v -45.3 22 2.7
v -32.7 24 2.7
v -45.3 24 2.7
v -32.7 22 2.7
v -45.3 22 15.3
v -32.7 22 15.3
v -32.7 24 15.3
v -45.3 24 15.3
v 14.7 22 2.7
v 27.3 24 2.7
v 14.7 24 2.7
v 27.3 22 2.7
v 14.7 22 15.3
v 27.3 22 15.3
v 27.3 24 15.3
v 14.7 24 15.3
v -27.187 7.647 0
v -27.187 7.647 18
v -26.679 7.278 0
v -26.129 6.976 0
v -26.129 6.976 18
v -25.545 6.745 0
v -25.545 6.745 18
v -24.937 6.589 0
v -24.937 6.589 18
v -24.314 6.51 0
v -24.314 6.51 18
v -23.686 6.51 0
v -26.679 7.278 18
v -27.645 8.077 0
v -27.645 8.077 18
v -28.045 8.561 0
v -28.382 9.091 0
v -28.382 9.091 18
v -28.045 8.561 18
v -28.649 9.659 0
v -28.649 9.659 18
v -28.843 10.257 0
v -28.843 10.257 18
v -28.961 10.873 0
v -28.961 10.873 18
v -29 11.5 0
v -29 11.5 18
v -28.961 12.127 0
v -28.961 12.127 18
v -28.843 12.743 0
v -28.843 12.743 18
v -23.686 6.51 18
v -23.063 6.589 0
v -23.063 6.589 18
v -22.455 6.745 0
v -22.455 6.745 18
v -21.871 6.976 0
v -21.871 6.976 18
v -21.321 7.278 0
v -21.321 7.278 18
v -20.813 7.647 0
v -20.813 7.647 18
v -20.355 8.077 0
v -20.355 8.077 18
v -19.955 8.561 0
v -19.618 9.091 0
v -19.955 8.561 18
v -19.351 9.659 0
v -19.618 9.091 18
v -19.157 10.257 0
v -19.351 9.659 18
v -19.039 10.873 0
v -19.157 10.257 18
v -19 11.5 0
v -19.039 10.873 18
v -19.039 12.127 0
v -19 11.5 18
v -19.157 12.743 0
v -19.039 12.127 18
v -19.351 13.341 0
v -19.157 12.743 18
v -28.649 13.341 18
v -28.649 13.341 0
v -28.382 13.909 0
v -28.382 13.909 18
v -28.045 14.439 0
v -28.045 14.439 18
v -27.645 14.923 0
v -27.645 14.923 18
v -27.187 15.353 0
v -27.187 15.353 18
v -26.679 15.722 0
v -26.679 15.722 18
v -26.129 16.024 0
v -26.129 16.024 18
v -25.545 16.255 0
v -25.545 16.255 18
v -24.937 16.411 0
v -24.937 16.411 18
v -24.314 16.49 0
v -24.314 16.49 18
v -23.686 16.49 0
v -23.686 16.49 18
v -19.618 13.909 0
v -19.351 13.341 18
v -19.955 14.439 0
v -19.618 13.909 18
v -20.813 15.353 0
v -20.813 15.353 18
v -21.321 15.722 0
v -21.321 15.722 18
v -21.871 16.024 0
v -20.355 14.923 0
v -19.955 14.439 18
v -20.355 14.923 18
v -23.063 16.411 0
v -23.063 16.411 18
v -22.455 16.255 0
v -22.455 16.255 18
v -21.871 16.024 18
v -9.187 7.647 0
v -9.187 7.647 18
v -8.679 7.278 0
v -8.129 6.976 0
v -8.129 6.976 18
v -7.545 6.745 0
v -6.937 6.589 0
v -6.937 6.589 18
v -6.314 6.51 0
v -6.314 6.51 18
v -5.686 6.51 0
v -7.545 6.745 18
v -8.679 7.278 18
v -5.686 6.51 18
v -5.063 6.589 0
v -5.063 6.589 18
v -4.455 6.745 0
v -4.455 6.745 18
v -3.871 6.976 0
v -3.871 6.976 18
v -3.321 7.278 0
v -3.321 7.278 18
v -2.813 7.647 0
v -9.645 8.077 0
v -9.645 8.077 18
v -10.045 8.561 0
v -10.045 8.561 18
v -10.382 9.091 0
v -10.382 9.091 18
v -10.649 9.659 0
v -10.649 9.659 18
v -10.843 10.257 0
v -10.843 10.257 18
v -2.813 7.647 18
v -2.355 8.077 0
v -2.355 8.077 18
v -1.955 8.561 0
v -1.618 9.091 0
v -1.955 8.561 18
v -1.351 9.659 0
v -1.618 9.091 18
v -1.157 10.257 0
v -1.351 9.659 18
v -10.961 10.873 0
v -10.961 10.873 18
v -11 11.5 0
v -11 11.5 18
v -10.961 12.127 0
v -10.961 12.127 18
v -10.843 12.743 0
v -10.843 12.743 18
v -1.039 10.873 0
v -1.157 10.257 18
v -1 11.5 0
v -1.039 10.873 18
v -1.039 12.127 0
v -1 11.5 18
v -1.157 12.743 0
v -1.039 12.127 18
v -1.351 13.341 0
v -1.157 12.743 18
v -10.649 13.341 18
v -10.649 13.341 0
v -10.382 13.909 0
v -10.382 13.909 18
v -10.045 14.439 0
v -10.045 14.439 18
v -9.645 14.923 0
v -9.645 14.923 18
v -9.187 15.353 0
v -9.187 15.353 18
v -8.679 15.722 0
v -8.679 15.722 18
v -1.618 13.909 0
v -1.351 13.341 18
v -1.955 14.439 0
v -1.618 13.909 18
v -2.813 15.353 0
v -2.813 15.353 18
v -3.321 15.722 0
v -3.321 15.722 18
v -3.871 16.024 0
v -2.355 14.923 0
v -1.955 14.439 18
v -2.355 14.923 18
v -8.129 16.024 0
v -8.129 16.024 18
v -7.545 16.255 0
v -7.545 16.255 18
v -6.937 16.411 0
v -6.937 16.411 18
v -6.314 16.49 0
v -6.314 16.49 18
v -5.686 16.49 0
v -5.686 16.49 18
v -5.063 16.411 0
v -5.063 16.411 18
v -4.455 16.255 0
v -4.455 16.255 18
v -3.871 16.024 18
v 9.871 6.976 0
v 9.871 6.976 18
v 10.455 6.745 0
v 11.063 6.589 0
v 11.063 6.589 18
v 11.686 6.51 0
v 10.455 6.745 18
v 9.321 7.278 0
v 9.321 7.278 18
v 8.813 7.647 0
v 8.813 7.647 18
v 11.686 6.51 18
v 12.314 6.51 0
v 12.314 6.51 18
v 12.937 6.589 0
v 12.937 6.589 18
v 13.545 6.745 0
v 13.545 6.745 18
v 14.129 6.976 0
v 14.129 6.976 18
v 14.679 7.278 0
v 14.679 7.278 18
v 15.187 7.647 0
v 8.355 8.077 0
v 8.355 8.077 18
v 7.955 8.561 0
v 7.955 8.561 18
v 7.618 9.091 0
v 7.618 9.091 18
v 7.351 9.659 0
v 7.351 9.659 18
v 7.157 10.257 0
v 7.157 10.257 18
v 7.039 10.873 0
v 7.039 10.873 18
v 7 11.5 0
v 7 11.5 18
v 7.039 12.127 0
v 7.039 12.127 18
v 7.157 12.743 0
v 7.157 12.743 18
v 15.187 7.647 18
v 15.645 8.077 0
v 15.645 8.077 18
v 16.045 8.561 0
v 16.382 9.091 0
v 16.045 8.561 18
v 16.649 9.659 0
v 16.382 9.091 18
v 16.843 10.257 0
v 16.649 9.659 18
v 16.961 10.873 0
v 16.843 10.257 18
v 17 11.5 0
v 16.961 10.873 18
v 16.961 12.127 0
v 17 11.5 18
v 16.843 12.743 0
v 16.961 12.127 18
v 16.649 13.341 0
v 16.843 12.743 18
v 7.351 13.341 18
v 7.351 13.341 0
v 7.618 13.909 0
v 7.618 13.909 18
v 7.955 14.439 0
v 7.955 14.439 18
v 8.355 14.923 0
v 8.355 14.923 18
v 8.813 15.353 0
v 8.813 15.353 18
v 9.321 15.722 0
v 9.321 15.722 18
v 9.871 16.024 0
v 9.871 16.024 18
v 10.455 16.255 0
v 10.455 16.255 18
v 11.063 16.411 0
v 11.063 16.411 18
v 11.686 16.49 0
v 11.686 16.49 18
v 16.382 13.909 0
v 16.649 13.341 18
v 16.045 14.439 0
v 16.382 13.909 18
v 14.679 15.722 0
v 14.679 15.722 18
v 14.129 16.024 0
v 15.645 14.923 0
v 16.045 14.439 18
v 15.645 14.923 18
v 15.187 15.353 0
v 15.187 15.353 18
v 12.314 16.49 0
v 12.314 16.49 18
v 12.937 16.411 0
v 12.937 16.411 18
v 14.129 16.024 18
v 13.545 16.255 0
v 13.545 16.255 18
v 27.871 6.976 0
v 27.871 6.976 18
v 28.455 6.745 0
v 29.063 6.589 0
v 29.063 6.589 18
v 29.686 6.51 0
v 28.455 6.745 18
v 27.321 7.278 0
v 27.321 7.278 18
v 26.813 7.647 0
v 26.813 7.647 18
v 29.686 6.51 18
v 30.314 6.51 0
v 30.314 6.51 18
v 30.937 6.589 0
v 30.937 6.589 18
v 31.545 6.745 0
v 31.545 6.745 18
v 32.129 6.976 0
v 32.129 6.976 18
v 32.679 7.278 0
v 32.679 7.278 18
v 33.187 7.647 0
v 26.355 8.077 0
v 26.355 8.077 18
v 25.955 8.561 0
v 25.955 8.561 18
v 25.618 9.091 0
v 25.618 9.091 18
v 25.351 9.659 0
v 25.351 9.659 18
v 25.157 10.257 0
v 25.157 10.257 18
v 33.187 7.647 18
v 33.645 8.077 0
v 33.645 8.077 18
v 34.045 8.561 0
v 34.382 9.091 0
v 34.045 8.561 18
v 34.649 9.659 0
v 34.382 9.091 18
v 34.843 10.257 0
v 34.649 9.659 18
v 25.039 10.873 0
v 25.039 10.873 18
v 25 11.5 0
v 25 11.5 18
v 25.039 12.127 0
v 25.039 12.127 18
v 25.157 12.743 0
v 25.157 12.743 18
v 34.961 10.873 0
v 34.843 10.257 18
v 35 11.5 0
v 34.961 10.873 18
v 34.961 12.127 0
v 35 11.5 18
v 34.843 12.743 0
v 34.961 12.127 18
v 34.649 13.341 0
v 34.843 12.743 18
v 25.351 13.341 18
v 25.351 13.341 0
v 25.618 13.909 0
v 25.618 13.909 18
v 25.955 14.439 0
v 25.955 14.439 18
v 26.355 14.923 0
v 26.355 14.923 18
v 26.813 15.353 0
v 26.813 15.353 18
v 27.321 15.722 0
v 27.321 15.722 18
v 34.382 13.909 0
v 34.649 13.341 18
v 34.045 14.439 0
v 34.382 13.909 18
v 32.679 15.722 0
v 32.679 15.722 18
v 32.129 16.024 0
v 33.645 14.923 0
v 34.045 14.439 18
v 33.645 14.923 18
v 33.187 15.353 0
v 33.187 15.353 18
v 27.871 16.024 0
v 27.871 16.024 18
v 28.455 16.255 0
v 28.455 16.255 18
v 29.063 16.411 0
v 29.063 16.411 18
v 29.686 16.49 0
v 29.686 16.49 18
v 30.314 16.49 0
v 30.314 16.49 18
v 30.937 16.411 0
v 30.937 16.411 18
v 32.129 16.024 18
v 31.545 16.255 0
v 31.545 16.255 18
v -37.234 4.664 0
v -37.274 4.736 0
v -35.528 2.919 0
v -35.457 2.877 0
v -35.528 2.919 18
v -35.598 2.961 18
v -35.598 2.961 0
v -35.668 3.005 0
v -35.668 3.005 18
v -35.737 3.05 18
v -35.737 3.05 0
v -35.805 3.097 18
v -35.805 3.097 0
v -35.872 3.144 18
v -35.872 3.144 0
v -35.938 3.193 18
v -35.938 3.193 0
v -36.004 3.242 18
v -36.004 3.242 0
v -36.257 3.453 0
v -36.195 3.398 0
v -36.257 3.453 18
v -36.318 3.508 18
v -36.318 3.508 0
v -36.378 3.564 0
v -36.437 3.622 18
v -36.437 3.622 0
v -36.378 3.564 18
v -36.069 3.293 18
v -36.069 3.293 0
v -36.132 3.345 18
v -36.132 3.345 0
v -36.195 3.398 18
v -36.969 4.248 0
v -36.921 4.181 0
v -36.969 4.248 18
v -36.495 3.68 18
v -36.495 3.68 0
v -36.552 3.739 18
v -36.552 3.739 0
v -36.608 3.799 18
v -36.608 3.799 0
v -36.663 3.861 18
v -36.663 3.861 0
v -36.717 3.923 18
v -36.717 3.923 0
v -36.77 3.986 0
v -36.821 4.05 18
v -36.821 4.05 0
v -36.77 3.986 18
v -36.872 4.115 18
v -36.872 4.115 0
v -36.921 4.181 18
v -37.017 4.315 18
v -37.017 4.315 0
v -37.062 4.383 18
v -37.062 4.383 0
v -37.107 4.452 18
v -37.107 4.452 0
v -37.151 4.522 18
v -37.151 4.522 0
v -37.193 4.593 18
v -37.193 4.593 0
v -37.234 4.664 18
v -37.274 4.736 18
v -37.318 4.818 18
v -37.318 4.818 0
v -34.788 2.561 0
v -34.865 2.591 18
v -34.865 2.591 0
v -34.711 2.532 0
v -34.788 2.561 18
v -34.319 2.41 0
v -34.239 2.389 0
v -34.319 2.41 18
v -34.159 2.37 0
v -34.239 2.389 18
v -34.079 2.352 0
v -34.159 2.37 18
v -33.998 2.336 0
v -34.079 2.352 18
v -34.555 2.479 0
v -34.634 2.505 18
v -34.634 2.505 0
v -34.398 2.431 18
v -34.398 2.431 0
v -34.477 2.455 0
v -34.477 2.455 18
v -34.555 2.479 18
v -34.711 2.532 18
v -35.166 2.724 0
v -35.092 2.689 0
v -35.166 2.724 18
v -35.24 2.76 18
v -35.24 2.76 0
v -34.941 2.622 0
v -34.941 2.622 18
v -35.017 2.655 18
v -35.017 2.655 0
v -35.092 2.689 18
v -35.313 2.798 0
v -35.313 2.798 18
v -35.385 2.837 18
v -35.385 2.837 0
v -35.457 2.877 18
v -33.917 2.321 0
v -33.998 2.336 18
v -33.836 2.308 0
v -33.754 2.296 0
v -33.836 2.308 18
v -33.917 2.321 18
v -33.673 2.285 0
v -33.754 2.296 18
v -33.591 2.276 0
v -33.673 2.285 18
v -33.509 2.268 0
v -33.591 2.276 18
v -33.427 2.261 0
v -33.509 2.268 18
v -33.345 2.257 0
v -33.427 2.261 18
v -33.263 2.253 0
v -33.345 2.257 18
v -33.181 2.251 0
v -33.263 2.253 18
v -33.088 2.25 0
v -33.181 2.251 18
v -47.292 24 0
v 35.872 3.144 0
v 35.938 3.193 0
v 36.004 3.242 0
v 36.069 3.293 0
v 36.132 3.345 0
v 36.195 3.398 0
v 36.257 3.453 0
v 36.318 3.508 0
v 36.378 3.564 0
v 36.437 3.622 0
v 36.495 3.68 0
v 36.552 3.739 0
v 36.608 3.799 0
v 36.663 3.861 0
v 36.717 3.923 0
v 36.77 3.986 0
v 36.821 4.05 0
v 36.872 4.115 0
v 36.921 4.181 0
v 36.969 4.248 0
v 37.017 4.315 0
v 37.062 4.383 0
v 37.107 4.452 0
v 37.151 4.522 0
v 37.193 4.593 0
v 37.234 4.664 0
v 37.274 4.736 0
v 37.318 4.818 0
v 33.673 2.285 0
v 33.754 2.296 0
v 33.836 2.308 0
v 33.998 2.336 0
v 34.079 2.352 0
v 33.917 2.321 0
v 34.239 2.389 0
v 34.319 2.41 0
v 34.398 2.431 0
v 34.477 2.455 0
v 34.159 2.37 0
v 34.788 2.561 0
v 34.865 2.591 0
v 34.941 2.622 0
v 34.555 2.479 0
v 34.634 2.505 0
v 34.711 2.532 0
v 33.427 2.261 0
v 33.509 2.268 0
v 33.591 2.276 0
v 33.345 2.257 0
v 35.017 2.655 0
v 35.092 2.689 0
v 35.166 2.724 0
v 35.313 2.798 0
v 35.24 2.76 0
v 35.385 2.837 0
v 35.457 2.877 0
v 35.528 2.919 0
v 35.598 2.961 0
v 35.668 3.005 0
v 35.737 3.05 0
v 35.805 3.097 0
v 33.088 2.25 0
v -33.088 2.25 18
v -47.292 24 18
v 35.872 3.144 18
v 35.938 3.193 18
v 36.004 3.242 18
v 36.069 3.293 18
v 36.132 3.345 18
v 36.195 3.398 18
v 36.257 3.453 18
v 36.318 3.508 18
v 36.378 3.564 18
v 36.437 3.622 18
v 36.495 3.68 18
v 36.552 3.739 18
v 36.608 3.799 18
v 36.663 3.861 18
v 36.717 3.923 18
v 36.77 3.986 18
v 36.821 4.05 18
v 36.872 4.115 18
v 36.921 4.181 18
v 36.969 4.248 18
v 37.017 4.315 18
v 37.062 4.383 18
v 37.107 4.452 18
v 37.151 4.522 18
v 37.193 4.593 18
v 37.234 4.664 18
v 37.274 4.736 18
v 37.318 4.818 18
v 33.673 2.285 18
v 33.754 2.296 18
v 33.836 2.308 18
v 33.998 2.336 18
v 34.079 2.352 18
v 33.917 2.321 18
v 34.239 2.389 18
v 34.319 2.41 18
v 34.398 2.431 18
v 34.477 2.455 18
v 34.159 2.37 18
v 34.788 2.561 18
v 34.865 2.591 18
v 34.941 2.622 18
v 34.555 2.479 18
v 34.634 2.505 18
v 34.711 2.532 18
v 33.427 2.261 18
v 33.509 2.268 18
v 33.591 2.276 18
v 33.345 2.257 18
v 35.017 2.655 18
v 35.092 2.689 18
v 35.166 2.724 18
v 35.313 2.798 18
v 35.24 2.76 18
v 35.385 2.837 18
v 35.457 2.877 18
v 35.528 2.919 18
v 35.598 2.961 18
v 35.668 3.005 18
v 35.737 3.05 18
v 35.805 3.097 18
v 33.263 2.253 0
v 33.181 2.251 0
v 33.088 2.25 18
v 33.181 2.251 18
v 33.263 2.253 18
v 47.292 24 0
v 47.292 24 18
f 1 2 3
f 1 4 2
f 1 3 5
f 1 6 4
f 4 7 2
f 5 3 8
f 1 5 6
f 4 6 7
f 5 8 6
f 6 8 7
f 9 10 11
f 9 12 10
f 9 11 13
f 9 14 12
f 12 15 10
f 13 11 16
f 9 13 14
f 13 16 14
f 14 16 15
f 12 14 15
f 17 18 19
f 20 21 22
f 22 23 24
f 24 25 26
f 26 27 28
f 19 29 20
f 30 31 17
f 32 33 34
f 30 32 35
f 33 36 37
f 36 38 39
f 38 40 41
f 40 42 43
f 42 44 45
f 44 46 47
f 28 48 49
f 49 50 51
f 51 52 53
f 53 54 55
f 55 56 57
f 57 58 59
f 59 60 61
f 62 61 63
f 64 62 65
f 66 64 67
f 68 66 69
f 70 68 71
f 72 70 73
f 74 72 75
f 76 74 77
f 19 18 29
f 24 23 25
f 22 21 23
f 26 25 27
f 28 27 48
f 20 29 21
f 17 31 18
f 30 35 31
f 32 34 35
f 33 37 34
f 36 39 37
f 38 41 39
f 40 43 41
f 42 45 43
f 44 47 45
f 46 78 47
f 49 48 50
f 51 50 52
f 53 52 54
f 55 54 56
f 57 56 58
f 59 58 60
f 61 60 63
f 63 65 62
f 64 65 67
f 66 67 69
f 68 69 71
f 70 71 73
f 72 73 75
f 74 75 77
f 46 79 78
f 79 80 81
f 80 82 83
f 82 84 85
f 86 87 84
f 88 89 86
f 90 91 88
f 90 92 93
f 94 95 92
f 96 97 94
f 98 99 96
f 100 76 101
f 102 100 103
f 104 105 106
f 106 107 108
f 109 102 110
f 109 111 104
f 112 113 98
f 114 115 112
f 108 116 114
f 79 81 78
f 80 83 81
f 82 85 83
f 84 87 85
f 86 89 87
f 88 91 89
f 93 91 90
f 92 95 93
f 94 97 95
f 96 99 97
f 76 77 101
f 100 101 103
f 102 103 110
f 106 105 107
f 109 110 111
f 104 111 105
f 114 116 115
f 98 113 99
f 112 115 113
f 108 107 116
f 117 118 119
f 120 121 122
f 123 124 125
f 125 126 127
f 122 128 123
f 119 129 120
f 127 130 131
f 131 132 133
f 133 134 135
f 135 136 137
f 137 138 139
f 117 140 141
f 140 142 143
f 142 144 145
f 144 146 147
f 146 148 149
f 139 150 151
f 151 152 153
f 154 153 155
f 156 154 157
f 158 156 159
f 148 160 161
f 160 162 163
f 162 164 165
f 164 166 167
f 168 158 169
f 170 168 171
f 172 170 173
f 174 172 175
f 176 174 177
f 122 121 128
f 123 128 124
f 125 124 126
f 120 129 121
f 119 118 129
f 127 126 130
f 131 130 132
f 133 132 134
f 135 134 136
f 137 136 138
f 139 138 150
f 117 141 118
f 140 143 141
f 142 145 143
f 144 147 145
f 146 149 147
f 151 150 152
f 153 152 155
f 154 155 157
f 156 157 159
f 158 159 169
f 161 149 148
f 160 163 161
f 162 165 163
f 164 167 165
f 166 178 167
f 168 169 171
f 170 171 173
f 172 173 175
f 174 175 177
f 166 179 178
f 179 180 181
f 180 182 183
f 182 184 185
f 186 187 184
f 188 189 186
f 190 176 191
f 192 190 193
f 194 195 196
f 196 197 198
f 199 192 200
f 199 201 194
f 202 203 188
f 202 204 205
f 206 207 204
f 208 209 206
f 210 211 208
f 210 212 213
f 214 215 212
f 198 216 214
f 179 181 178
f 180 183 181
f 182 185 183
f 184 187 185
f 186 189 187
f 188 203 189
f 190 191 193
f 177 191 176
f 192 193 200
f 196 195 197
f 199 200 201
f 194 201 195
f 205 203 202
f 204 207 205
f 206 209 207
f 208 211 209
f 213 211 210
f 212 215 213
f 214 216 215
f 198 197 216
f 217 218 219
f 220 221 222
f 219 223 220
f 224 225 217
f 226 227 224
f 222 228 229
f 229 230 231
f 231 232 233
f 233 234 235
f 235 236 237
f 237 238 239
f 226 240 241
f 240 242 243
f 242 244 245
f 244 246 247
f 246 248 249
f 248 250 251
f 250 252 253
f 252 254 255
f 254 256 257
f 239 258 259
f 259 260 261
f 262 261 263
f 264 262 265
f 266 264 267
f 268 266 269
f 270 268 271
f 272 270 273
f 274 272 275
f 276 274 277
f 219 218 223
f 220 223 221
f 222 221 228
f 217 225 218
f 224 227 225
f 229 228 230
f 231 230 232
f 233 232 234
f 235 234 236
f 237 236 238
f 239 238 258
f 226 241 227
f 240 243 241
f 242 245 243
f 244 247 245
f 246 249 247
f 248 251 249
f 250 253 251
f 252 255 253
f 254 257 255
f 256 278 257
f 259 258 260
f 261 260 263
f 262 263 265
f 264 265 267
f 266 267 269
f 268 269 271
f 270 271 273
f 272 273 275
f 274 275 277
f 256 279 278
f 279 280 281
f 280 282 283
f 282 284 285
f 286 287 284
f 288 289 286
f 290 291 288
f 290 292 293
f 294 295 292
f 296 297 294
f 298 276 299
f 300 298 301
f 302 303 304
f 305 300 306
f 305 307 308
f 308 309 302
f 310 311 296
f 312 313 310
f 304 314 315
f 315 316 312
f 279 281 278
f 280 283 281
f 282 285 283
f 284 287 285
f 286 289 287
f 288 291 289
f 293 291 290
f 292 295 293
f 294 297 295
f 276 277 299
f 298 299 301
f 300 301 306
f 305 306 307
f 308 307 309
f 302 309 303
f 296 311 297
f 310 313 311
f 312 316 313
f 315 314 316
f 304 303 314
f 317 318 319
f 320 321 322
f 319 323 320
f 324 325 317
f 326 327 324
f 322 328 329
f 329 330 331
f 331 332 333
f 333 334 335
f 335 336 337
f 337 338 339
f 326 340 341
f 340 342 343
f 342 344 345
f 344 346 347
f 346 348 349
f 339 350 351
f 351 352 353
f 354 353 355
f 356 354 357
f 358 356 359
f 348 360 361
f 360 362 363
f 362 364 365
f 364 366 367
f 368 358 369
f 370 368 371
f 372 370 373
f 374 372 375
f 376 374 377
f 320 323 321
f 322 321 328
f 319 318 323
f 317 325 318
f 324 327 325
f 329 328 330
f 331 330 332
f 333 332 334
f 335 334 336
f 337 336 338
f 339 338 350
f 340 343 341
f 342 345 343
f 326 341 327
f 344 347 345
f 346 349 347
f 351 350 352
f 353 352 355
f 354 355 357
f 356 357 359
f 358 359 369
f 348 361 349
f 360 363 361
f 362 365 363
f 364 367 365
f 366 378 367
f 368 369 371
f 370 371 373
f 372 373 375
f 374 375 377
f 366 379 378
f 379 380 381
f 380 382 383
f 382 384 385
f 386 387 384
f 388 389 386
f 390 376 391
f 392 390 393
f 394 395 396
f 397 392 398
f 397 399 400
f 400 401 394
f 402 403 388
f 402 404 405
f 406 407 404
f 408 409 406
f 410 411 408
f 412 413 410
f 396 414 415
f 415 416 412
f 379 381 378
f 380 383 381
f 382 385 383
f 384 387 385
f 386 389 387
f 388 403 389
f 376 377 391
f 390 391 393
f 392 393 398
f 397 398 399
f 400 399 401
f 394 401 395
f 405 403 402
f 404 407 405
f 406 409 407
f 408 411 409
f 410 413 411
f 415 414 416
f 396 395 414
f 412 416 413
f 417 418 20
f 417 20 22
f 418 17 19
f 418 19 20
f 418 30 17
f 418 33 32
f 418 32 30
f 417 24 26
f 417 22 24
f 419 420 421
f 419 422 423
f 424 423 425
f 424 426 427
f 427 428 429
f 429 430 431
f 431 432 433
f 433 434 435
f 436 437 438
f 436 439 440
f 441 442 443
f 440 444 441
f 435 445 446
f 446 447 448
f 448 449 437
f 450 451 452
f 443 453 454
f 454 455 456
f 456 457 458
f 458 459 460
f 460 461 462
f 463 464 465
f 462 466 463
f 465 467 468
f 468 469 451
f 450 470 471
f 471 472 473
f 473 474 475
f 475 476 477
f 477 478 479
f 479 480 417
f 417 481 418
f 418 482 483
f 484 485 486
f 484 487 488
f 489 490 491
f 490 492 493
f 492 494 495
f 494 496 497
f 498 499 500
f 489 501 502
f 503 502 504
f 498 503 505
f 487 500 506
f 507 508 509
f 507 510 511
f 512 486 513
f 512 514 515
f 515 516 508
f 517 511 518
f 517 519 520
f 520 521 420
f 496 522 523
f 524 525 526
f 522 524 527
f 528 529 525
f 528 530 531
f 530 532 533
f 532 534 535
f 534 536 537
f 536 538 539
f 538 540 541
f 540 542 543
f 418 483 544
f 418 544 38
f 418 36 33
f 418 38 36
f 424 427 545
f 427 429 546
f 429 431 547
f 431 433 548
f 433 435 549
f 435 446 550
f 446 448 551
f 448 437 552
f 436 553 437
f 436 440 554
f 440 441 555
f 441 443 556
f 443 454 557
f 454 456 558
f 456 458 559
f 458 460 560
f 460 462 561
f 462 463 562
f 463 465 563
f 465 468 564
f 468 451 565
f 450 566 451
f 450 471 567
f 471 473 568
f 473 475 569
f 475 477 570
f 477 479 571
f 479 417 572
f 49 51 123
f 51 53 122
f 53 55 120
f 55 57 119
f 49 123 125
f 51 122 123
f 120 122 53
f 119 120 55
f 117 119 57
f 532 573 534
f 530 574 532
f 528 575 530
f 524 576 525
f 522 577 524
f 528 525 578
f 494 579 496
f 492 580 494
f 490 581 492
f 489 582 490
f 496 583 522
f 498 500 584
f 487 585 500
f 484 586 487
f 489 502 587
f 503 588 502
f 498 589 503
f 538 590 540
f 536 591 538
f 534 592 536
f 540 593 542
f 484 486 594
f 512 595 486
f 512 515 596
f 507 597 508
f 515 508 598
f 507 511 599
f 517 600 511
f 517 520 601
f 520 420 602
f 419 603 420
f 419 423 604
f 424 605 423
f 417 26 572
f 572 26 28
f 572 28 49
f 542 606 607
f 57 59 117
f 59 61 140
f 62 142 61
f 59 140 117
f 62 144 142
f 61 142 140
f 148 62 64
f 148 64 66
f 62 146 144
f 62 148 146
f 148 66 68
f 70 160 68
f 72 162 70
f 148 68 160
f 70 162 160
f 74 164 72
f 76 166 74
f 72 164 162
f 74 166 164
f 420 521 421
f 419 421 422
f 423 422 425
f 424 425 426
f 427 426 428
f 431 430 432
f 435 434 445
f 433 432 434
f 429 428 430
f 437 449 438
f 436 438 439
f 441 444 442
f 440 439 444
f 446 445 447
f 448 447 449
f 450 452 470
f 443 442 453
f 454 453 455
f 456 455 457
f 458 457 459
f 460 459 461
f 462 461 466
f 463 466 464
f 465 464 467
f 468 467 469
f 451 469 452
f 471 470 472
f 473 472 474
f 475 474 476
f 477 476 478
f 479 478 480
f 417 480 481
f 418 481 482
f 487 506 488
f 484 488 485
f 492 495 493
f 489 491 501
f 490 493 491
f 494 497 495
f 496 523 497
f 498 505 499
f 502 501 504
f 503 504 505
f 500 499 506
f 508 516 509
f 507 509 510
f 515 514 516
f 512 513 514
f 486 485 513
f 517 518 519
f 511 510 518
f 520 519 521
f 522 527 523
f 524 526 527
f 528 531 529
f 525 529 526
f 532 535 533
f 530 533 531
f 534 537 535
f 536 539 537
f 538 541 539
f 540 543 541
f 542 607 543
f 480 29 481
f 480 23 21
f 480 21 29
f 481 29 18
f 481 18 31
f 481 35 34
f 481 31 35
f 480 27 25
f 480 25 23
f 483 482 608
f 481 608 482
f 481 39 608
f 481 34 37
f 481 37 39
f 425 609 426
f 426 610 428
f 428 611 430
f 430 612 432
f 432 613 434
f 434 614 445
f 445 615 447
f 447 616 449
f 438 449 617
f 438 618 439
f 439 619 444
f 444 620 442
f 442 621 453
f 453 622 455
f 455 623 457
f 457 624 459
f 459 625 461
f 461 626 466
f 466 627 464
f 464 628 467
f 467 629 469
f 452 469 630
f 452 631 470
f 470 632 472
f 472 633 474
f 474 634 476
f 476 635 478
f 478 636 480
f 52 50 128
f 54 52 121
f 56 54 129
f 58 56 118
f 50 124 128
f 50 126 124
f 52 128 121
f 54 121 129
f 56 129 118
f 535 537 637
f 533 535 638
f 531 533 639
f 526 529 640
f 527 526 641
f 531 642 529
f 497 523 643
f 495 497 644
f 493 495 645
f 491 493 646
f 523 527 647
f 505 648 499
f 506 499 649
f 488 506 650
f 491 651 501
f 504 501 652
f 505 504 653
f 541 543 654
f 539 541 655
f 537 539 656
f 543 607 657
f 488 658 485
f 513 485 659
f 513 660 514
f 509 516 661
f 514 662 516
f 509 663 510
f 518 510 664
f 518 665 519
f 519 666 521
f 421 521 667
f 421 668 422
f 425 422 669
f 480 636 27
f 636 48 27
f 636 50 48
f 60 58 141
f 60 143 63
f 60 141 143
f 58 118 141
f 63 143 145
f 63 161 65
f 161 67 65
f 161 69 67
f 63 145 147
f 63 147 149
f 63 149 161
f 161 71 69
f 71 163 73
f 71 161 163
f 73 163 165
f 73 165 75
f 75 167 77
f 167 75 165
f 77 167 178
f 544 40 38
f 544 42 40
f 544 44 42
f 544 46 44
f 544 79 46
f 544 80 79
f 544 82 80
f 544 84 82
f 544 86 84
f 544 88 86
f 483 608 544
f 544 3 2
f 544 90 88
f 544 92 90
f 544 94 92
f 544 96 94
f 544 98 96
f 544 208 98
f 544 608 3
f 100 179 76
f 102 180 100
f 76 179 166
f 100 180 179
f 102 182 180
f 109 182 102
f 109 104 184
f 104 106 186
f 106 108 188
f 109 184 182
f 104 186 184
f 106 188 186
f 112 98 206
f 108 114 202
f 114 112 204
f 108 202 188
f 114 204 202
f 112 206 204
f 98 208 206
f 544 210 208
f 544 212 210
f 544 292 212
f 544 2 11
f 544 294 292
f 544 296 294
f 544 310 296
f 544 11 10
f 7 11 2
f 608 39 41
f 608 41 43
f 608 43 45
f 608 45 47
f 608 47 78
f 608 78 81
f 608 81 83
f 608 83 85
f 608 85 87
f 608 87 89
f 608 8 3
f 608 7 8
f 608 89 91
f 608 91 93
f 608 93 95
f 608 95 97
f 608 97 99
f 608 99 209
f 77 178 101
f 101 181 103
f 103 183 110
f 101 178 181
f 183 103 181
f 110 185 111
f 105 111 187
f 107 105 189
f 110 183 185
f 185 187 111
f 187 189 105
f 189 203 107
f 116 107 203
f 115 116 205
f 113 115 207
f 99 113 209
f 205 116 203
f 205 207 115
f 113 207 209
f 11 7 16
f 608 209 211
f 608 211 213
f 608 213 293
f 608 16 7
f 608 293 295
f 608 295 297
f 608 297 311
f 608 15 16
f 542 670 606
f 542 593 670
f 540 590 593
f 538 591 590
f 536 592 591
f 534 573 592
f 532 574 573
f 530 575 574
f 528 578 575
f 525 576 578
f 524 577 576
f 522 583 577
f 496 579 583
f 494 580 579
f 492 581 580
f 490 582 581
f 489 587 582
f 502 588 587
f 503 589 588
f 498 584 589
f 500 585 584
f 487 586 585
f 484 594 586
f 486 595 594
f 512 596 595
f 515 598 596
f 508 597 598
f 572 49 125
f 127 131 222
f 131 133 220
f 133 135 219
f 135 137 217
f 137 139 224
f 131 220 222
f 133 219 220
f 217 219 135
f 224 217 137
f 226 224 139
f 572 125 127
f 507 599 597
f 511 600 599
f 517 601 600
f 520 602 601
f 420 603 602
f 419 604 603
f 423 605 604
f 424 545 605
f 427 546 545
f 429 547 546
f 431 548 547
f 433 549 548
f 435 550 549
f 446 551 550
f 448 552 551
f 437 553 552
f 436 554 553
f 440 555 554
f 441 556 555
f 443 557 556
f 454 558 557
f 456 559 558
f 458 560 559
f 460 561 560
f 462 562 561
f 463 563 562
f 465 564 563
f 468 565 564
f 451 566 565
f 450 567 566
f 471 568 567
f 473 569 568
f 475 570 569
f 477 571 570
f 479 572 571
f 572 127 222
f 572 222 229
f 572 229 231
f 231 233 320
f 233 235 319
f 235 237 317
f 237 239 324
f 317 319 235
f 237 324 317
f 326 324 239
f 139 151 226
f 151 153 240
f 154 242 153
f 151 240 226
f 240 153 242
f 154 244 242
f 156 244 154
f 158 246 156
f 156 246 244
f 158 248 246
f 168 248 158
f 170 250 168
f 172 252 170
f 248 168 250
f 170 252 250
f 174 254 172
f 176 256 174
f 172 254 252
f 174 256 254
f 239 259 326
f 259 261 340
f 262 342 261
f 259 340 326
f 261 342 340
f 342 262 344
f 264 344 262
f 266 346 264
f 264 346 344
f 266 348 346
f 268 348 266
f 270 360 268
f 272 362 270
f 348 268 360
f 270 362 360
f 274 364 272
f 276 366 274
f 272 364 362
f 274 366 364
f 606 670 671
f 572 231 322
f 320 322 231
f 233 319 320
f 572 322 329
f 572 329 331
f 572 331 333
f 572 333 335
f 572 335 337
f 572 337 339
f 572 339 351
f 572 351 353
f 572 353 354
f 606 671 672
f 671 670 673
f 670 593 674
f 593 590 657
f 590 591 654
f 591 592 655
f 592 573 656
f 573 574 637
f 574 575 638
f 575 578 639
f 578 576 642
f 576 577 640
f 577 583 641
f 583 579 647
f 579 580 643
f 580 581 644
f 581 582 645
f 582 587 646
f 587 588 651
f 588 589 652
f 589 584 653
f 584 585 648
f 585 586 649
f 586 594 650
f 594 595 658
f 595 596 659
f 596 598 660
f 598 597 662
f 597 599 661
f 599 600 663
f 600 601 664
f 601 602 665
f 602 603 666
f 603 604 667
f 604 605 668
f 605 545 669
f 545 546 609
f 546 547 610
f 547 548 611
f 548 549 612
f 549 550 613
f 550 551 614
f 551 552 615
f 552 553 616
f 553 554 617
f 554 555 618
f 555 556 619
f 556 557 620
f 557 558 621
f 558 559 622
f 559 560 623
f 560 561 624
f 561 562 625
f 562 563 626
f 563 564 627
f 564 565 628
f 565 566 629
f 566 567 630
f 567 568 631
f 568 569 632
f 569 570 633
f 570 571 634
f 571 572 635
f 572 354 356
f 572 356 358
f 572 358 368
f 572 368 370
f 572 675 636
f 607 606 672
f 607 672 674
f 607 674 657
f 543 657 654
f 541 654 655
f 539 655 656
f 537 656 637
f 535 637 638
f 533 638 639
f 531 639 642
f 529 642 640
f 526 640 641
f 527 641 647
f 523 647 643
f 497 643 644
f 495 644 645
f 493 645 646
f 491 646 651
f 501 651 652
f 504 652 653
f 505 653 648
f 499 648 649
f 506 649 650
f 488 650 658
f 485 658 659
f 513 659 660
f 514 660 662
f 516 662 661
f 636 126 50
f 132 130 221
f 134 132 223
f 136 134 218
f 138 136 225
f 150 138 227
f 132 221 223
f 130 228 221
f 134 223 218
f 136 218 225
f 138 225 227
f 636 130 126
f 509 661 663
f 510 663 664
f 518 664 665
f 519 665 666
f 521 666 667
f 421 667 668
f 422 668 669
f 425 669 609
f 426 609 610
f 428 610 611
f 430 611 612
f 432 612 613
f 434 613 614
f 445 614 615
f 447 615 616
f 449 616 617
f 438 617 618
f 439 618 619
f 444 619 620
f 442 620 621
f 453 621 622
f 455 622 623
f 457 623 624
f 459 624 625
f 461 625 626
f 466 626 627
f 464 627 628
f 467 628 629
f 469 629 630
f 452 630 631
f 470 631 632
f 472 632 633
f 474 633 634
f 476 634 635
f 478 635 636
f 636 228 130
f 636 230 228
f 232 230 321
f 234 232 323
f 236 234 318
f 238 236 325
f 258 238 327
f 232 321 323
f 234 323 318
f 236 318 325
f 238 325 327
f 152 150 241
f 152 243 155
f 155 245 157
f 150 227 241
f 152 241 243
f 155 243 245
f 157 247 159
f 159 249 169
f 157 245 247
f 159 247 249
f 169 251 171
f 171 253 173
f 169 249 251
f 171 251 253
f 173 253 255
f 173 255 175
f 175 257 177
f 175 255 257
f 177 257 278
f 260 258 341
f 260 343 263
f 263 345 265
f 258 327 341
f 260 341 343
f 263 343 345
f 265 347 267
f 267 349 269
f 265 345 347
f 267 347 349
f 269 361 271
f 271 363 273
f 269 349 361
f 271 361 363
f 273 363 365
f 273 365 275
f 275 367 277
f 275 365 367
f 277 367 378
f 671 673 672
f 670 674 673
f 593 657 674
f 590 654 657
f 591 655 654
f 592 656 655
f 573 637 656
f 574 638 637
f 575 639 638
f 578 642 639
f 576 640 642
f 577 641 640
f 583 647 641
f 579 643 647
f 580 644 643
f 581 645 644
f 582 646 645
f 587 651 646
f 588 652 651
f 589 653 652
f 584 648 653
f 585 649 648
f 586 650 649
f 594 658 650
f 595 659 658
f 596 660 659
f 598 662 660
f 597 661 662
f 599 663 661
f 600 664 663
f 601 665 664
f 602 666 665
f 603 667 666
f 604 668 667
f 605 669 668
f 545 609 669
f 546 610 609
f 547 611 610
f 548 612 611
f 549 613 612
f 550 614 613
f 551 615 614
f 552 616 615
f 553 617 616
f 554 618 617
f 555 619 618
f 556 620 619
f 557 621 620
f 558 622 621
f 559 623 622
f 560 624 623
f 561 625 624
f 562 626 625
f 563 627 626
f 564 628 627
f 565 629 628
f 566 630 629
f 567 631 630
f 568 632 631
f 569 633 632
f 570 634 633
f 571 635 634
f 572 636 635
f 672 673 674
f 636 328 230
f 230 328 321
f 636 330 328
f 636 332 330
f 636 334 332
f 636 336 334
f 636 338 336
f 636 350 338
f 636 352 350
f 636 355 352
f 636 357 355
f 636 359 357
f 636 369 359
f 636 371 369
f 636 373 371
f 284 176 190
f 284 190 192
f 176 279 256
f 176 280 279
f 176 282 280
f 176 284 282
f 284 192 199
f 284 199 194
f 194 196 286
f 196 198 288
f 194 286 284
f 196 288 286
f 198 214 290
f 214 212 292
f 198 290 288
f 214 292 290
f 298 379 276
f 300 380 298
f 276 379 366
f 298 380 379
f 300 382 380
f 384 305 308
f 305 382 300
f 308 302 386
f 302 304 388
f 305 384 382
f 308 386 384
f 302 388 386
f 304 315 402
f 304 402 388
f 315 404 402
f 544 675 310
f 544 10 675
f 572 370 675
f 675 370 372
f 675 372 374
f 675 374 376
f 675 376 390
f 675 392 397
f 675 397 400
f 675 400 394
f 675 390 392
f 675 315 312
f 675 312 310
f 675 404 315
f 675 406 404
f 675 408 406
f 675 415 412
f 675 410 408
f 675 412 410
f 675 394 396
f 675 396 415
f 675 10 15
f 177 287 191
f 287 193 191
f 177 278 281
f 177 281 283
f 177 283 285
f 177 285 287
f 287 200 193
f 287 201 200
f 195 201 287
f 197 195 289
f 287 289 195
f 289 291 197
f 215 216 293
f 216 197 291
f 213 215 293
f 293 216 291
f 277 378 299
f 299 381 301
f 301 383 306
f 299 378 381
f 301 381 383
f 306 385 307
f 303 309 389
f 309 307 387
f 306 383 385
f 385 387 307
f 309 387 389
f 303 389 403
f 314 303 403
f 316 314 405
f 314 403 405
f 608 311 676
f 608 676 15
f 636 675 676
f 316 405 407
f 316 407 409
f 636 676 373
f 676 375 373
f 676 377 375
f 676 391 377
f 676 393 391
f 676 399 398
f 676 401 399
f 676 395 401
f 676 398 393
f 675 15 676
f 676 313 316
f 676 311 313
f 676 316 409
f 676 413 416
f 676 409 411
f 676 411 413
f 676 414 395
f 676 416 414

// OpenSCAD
$fn = 50;

difference() {
	union() {
		linear_extrude(height = 18.0) {
			polygon(points = [[37.3176529, 4.8181797], [37.2739859, 4.7359524], [37.2341439, 4.6639664], [37.193061, 4.5926813], [37.1507496, 4.5221185], [37.1072223, 4.4522992], [37.0624922, 4.3832442], [37.0165727, 4.3149744], [36.9694776, 4.2475102], [36.921221, 4.1808718], [36.8718174, 4.1150793], [36.8212816, 4.0501524], [36.7696288, 3.9861106], [36.7168745, 3.922973], [36.6630345, 3.8607587], [36.608125, 3.7994863], [36.5521624, 3.7391741], [36.4951635, 3.6798403], [36.4371454, 3.6215028], [36.3781256, 3.5641788], [36.3181218, 3.5078858], [36.2571519, 3.4526405], [36.1952342, 3.3984596], [36.1323874, 3.3453593], [36.0686302, 3.2933555], [36.0039819, 3.2424639], [35.9384617, 3.1926997], [35.8720894, 3.1440778], [35.8048849, 3.0966128], [35.7368684, 3.050319], [35.6680601, 3.0052103], [35.5984809, 2.9613002], [35.5281516, 2.9186018], [35.4570932, 2.877128], [35.3853271, 2.8368912], [35.3128749, 2.7979036], [35.2397582, 2.7601767], [35.165999, 2.7237219], [35.0916194, 2.6885502], [35.0166418, 2.6546721], [34.9410886, 2.6220977], [34.8649826, 2.590837], [34.7883465, 2.5608991], [34.7112033, 2.5322931], [34.6335763, 2.5050276], [34.5554886, 2.4791108], [34.4769637, 2.4545504], [34.3980252, 2.4313539], [34.3186967, 2.4095281], [34.2390021, 2.3890796], [34.1589653, 2.3700146], [34.0786103, 2.3523388], [33.9979611, 2.3360574], [33.917042, 2.3211755], [33.8358773, 2.3076973], [33.7544914, 2.295627], [33.6729085, 2.2849683], [33.5911533, 2.2757242], [33.5092503, 2.2678976], [33.4272239, 2.2614908], [33.3450989, 2.2565057], [33.2628999, 2.2529439], [33.1806515, 2.2508063], [33.0875521, 2.25], [-33.0875521, 2.25], [-33.1806515, 2.2508063], [-33.2628999, 2.2529439], [-33.3450989, 2.2565057], [-33.4272239, 2.2614908], [-33.5092503, 2.2678976], [-33.5911533, 2.2757242], [-33.6729085, 2.2849683], [-33.7544914, 2.295627], [-33.8358773, 2.3076973], [-33.917042, 2.3211755], [-33.9979611, 2.3360574], [-34.0786103, 2.3523388], [-34.1589653, 2.3700146], [-34.2390021, 2.3890796], [-34.3186967, 2.4095281], [-34.3980252, 2.4313539], [-34.4769637, 2.4545504], [-34.5554886, 2.4791108], [-34.6335763, 2.5050276], [-34.7112033, 2.5322931], [-34.7883465, 2.5608991], [-34.8649826, 2.590837], [-34.9410886, 2.6220977], [-35.0166418, 2.6546721], [-35.0916194, 2.6885502], [-35.165999, 2.7237219], [-35.2397582, 2.7601767], [-35.3128749, 2.7979036], [-35.3853271, 2.8368912], [-35.4570932, 2.877128], [-35.5281516, 2.9186018], [-35.5984809, 2.9613002], [-35.6680601, 3.0052103], [-35.7368684, 3.050319], [-35.8048849, 3.0966128], [-35.8720894, 3.1440778], [-35.9384617, 3.1926997], [-36.0039819, 3.2424639], [-36.0686302, 3.2933555], [-36.1323874, 3.3453593], [-36.1952342, 3.3984596], [-36.2571519, 3.4526405], [-36.3181218, 3.5078858], [-36.3781256, 3.5641788], [-36.4371454, 3.6215028], [-36.4951635, 3.6798403], [-36.5521624, 3.7391741], [-36.608125, 3.7994863], [-36.6630345, 3.8607587], [-36.7168745, 3.922973], [-36.7696288, 3.9861106], [-36.8212816, 4.0501524], [-36.8718174, 4.1150793], [-36.921221, 4.1808718], [-36.9694776, 4.2475102], [-37.0165727, 4.3149744], [-37.0624922, 4.3832442], [-37.1072223, 4.4522992], [-37.1507496, 4.5221185], [-37.193061, 4.5926813], [-37.2341439, 4.6639664], [-37.2739859, 4.7359524], [-37.3176529, 4.8181797], [-47.2921994, 24.0], [47.2921994, 24.0]]);
		}
	}
	union() {
		translate(v = [-45.3, 22.0, 2.7]) {
			cube(size = [12.6, 4.0, 12.6]);
		}
		translate(v = [14.7, 22.0, 2.7]) {
			cube(size = [12.6, 4.0, 12.6]);
		}
		translate(v = [-24.0, 11.5, -0.01]) {
			cylinder(h = 18.02, r = 5.0);
		}
		translate(v = [-6.0, 11.5, -0.01]) {
			cylinder(h = 18.02, r = 5.0);
		}
		translate(v = [12.0, 11.5, -0.01]) {
			cylinder(h = 18.02, r = 5.0);
		}
		translate(v = [30.0, 11.5, -0.01]) {
			cylinder(h = 18.02, r = 5.0);
		}
	}
}
